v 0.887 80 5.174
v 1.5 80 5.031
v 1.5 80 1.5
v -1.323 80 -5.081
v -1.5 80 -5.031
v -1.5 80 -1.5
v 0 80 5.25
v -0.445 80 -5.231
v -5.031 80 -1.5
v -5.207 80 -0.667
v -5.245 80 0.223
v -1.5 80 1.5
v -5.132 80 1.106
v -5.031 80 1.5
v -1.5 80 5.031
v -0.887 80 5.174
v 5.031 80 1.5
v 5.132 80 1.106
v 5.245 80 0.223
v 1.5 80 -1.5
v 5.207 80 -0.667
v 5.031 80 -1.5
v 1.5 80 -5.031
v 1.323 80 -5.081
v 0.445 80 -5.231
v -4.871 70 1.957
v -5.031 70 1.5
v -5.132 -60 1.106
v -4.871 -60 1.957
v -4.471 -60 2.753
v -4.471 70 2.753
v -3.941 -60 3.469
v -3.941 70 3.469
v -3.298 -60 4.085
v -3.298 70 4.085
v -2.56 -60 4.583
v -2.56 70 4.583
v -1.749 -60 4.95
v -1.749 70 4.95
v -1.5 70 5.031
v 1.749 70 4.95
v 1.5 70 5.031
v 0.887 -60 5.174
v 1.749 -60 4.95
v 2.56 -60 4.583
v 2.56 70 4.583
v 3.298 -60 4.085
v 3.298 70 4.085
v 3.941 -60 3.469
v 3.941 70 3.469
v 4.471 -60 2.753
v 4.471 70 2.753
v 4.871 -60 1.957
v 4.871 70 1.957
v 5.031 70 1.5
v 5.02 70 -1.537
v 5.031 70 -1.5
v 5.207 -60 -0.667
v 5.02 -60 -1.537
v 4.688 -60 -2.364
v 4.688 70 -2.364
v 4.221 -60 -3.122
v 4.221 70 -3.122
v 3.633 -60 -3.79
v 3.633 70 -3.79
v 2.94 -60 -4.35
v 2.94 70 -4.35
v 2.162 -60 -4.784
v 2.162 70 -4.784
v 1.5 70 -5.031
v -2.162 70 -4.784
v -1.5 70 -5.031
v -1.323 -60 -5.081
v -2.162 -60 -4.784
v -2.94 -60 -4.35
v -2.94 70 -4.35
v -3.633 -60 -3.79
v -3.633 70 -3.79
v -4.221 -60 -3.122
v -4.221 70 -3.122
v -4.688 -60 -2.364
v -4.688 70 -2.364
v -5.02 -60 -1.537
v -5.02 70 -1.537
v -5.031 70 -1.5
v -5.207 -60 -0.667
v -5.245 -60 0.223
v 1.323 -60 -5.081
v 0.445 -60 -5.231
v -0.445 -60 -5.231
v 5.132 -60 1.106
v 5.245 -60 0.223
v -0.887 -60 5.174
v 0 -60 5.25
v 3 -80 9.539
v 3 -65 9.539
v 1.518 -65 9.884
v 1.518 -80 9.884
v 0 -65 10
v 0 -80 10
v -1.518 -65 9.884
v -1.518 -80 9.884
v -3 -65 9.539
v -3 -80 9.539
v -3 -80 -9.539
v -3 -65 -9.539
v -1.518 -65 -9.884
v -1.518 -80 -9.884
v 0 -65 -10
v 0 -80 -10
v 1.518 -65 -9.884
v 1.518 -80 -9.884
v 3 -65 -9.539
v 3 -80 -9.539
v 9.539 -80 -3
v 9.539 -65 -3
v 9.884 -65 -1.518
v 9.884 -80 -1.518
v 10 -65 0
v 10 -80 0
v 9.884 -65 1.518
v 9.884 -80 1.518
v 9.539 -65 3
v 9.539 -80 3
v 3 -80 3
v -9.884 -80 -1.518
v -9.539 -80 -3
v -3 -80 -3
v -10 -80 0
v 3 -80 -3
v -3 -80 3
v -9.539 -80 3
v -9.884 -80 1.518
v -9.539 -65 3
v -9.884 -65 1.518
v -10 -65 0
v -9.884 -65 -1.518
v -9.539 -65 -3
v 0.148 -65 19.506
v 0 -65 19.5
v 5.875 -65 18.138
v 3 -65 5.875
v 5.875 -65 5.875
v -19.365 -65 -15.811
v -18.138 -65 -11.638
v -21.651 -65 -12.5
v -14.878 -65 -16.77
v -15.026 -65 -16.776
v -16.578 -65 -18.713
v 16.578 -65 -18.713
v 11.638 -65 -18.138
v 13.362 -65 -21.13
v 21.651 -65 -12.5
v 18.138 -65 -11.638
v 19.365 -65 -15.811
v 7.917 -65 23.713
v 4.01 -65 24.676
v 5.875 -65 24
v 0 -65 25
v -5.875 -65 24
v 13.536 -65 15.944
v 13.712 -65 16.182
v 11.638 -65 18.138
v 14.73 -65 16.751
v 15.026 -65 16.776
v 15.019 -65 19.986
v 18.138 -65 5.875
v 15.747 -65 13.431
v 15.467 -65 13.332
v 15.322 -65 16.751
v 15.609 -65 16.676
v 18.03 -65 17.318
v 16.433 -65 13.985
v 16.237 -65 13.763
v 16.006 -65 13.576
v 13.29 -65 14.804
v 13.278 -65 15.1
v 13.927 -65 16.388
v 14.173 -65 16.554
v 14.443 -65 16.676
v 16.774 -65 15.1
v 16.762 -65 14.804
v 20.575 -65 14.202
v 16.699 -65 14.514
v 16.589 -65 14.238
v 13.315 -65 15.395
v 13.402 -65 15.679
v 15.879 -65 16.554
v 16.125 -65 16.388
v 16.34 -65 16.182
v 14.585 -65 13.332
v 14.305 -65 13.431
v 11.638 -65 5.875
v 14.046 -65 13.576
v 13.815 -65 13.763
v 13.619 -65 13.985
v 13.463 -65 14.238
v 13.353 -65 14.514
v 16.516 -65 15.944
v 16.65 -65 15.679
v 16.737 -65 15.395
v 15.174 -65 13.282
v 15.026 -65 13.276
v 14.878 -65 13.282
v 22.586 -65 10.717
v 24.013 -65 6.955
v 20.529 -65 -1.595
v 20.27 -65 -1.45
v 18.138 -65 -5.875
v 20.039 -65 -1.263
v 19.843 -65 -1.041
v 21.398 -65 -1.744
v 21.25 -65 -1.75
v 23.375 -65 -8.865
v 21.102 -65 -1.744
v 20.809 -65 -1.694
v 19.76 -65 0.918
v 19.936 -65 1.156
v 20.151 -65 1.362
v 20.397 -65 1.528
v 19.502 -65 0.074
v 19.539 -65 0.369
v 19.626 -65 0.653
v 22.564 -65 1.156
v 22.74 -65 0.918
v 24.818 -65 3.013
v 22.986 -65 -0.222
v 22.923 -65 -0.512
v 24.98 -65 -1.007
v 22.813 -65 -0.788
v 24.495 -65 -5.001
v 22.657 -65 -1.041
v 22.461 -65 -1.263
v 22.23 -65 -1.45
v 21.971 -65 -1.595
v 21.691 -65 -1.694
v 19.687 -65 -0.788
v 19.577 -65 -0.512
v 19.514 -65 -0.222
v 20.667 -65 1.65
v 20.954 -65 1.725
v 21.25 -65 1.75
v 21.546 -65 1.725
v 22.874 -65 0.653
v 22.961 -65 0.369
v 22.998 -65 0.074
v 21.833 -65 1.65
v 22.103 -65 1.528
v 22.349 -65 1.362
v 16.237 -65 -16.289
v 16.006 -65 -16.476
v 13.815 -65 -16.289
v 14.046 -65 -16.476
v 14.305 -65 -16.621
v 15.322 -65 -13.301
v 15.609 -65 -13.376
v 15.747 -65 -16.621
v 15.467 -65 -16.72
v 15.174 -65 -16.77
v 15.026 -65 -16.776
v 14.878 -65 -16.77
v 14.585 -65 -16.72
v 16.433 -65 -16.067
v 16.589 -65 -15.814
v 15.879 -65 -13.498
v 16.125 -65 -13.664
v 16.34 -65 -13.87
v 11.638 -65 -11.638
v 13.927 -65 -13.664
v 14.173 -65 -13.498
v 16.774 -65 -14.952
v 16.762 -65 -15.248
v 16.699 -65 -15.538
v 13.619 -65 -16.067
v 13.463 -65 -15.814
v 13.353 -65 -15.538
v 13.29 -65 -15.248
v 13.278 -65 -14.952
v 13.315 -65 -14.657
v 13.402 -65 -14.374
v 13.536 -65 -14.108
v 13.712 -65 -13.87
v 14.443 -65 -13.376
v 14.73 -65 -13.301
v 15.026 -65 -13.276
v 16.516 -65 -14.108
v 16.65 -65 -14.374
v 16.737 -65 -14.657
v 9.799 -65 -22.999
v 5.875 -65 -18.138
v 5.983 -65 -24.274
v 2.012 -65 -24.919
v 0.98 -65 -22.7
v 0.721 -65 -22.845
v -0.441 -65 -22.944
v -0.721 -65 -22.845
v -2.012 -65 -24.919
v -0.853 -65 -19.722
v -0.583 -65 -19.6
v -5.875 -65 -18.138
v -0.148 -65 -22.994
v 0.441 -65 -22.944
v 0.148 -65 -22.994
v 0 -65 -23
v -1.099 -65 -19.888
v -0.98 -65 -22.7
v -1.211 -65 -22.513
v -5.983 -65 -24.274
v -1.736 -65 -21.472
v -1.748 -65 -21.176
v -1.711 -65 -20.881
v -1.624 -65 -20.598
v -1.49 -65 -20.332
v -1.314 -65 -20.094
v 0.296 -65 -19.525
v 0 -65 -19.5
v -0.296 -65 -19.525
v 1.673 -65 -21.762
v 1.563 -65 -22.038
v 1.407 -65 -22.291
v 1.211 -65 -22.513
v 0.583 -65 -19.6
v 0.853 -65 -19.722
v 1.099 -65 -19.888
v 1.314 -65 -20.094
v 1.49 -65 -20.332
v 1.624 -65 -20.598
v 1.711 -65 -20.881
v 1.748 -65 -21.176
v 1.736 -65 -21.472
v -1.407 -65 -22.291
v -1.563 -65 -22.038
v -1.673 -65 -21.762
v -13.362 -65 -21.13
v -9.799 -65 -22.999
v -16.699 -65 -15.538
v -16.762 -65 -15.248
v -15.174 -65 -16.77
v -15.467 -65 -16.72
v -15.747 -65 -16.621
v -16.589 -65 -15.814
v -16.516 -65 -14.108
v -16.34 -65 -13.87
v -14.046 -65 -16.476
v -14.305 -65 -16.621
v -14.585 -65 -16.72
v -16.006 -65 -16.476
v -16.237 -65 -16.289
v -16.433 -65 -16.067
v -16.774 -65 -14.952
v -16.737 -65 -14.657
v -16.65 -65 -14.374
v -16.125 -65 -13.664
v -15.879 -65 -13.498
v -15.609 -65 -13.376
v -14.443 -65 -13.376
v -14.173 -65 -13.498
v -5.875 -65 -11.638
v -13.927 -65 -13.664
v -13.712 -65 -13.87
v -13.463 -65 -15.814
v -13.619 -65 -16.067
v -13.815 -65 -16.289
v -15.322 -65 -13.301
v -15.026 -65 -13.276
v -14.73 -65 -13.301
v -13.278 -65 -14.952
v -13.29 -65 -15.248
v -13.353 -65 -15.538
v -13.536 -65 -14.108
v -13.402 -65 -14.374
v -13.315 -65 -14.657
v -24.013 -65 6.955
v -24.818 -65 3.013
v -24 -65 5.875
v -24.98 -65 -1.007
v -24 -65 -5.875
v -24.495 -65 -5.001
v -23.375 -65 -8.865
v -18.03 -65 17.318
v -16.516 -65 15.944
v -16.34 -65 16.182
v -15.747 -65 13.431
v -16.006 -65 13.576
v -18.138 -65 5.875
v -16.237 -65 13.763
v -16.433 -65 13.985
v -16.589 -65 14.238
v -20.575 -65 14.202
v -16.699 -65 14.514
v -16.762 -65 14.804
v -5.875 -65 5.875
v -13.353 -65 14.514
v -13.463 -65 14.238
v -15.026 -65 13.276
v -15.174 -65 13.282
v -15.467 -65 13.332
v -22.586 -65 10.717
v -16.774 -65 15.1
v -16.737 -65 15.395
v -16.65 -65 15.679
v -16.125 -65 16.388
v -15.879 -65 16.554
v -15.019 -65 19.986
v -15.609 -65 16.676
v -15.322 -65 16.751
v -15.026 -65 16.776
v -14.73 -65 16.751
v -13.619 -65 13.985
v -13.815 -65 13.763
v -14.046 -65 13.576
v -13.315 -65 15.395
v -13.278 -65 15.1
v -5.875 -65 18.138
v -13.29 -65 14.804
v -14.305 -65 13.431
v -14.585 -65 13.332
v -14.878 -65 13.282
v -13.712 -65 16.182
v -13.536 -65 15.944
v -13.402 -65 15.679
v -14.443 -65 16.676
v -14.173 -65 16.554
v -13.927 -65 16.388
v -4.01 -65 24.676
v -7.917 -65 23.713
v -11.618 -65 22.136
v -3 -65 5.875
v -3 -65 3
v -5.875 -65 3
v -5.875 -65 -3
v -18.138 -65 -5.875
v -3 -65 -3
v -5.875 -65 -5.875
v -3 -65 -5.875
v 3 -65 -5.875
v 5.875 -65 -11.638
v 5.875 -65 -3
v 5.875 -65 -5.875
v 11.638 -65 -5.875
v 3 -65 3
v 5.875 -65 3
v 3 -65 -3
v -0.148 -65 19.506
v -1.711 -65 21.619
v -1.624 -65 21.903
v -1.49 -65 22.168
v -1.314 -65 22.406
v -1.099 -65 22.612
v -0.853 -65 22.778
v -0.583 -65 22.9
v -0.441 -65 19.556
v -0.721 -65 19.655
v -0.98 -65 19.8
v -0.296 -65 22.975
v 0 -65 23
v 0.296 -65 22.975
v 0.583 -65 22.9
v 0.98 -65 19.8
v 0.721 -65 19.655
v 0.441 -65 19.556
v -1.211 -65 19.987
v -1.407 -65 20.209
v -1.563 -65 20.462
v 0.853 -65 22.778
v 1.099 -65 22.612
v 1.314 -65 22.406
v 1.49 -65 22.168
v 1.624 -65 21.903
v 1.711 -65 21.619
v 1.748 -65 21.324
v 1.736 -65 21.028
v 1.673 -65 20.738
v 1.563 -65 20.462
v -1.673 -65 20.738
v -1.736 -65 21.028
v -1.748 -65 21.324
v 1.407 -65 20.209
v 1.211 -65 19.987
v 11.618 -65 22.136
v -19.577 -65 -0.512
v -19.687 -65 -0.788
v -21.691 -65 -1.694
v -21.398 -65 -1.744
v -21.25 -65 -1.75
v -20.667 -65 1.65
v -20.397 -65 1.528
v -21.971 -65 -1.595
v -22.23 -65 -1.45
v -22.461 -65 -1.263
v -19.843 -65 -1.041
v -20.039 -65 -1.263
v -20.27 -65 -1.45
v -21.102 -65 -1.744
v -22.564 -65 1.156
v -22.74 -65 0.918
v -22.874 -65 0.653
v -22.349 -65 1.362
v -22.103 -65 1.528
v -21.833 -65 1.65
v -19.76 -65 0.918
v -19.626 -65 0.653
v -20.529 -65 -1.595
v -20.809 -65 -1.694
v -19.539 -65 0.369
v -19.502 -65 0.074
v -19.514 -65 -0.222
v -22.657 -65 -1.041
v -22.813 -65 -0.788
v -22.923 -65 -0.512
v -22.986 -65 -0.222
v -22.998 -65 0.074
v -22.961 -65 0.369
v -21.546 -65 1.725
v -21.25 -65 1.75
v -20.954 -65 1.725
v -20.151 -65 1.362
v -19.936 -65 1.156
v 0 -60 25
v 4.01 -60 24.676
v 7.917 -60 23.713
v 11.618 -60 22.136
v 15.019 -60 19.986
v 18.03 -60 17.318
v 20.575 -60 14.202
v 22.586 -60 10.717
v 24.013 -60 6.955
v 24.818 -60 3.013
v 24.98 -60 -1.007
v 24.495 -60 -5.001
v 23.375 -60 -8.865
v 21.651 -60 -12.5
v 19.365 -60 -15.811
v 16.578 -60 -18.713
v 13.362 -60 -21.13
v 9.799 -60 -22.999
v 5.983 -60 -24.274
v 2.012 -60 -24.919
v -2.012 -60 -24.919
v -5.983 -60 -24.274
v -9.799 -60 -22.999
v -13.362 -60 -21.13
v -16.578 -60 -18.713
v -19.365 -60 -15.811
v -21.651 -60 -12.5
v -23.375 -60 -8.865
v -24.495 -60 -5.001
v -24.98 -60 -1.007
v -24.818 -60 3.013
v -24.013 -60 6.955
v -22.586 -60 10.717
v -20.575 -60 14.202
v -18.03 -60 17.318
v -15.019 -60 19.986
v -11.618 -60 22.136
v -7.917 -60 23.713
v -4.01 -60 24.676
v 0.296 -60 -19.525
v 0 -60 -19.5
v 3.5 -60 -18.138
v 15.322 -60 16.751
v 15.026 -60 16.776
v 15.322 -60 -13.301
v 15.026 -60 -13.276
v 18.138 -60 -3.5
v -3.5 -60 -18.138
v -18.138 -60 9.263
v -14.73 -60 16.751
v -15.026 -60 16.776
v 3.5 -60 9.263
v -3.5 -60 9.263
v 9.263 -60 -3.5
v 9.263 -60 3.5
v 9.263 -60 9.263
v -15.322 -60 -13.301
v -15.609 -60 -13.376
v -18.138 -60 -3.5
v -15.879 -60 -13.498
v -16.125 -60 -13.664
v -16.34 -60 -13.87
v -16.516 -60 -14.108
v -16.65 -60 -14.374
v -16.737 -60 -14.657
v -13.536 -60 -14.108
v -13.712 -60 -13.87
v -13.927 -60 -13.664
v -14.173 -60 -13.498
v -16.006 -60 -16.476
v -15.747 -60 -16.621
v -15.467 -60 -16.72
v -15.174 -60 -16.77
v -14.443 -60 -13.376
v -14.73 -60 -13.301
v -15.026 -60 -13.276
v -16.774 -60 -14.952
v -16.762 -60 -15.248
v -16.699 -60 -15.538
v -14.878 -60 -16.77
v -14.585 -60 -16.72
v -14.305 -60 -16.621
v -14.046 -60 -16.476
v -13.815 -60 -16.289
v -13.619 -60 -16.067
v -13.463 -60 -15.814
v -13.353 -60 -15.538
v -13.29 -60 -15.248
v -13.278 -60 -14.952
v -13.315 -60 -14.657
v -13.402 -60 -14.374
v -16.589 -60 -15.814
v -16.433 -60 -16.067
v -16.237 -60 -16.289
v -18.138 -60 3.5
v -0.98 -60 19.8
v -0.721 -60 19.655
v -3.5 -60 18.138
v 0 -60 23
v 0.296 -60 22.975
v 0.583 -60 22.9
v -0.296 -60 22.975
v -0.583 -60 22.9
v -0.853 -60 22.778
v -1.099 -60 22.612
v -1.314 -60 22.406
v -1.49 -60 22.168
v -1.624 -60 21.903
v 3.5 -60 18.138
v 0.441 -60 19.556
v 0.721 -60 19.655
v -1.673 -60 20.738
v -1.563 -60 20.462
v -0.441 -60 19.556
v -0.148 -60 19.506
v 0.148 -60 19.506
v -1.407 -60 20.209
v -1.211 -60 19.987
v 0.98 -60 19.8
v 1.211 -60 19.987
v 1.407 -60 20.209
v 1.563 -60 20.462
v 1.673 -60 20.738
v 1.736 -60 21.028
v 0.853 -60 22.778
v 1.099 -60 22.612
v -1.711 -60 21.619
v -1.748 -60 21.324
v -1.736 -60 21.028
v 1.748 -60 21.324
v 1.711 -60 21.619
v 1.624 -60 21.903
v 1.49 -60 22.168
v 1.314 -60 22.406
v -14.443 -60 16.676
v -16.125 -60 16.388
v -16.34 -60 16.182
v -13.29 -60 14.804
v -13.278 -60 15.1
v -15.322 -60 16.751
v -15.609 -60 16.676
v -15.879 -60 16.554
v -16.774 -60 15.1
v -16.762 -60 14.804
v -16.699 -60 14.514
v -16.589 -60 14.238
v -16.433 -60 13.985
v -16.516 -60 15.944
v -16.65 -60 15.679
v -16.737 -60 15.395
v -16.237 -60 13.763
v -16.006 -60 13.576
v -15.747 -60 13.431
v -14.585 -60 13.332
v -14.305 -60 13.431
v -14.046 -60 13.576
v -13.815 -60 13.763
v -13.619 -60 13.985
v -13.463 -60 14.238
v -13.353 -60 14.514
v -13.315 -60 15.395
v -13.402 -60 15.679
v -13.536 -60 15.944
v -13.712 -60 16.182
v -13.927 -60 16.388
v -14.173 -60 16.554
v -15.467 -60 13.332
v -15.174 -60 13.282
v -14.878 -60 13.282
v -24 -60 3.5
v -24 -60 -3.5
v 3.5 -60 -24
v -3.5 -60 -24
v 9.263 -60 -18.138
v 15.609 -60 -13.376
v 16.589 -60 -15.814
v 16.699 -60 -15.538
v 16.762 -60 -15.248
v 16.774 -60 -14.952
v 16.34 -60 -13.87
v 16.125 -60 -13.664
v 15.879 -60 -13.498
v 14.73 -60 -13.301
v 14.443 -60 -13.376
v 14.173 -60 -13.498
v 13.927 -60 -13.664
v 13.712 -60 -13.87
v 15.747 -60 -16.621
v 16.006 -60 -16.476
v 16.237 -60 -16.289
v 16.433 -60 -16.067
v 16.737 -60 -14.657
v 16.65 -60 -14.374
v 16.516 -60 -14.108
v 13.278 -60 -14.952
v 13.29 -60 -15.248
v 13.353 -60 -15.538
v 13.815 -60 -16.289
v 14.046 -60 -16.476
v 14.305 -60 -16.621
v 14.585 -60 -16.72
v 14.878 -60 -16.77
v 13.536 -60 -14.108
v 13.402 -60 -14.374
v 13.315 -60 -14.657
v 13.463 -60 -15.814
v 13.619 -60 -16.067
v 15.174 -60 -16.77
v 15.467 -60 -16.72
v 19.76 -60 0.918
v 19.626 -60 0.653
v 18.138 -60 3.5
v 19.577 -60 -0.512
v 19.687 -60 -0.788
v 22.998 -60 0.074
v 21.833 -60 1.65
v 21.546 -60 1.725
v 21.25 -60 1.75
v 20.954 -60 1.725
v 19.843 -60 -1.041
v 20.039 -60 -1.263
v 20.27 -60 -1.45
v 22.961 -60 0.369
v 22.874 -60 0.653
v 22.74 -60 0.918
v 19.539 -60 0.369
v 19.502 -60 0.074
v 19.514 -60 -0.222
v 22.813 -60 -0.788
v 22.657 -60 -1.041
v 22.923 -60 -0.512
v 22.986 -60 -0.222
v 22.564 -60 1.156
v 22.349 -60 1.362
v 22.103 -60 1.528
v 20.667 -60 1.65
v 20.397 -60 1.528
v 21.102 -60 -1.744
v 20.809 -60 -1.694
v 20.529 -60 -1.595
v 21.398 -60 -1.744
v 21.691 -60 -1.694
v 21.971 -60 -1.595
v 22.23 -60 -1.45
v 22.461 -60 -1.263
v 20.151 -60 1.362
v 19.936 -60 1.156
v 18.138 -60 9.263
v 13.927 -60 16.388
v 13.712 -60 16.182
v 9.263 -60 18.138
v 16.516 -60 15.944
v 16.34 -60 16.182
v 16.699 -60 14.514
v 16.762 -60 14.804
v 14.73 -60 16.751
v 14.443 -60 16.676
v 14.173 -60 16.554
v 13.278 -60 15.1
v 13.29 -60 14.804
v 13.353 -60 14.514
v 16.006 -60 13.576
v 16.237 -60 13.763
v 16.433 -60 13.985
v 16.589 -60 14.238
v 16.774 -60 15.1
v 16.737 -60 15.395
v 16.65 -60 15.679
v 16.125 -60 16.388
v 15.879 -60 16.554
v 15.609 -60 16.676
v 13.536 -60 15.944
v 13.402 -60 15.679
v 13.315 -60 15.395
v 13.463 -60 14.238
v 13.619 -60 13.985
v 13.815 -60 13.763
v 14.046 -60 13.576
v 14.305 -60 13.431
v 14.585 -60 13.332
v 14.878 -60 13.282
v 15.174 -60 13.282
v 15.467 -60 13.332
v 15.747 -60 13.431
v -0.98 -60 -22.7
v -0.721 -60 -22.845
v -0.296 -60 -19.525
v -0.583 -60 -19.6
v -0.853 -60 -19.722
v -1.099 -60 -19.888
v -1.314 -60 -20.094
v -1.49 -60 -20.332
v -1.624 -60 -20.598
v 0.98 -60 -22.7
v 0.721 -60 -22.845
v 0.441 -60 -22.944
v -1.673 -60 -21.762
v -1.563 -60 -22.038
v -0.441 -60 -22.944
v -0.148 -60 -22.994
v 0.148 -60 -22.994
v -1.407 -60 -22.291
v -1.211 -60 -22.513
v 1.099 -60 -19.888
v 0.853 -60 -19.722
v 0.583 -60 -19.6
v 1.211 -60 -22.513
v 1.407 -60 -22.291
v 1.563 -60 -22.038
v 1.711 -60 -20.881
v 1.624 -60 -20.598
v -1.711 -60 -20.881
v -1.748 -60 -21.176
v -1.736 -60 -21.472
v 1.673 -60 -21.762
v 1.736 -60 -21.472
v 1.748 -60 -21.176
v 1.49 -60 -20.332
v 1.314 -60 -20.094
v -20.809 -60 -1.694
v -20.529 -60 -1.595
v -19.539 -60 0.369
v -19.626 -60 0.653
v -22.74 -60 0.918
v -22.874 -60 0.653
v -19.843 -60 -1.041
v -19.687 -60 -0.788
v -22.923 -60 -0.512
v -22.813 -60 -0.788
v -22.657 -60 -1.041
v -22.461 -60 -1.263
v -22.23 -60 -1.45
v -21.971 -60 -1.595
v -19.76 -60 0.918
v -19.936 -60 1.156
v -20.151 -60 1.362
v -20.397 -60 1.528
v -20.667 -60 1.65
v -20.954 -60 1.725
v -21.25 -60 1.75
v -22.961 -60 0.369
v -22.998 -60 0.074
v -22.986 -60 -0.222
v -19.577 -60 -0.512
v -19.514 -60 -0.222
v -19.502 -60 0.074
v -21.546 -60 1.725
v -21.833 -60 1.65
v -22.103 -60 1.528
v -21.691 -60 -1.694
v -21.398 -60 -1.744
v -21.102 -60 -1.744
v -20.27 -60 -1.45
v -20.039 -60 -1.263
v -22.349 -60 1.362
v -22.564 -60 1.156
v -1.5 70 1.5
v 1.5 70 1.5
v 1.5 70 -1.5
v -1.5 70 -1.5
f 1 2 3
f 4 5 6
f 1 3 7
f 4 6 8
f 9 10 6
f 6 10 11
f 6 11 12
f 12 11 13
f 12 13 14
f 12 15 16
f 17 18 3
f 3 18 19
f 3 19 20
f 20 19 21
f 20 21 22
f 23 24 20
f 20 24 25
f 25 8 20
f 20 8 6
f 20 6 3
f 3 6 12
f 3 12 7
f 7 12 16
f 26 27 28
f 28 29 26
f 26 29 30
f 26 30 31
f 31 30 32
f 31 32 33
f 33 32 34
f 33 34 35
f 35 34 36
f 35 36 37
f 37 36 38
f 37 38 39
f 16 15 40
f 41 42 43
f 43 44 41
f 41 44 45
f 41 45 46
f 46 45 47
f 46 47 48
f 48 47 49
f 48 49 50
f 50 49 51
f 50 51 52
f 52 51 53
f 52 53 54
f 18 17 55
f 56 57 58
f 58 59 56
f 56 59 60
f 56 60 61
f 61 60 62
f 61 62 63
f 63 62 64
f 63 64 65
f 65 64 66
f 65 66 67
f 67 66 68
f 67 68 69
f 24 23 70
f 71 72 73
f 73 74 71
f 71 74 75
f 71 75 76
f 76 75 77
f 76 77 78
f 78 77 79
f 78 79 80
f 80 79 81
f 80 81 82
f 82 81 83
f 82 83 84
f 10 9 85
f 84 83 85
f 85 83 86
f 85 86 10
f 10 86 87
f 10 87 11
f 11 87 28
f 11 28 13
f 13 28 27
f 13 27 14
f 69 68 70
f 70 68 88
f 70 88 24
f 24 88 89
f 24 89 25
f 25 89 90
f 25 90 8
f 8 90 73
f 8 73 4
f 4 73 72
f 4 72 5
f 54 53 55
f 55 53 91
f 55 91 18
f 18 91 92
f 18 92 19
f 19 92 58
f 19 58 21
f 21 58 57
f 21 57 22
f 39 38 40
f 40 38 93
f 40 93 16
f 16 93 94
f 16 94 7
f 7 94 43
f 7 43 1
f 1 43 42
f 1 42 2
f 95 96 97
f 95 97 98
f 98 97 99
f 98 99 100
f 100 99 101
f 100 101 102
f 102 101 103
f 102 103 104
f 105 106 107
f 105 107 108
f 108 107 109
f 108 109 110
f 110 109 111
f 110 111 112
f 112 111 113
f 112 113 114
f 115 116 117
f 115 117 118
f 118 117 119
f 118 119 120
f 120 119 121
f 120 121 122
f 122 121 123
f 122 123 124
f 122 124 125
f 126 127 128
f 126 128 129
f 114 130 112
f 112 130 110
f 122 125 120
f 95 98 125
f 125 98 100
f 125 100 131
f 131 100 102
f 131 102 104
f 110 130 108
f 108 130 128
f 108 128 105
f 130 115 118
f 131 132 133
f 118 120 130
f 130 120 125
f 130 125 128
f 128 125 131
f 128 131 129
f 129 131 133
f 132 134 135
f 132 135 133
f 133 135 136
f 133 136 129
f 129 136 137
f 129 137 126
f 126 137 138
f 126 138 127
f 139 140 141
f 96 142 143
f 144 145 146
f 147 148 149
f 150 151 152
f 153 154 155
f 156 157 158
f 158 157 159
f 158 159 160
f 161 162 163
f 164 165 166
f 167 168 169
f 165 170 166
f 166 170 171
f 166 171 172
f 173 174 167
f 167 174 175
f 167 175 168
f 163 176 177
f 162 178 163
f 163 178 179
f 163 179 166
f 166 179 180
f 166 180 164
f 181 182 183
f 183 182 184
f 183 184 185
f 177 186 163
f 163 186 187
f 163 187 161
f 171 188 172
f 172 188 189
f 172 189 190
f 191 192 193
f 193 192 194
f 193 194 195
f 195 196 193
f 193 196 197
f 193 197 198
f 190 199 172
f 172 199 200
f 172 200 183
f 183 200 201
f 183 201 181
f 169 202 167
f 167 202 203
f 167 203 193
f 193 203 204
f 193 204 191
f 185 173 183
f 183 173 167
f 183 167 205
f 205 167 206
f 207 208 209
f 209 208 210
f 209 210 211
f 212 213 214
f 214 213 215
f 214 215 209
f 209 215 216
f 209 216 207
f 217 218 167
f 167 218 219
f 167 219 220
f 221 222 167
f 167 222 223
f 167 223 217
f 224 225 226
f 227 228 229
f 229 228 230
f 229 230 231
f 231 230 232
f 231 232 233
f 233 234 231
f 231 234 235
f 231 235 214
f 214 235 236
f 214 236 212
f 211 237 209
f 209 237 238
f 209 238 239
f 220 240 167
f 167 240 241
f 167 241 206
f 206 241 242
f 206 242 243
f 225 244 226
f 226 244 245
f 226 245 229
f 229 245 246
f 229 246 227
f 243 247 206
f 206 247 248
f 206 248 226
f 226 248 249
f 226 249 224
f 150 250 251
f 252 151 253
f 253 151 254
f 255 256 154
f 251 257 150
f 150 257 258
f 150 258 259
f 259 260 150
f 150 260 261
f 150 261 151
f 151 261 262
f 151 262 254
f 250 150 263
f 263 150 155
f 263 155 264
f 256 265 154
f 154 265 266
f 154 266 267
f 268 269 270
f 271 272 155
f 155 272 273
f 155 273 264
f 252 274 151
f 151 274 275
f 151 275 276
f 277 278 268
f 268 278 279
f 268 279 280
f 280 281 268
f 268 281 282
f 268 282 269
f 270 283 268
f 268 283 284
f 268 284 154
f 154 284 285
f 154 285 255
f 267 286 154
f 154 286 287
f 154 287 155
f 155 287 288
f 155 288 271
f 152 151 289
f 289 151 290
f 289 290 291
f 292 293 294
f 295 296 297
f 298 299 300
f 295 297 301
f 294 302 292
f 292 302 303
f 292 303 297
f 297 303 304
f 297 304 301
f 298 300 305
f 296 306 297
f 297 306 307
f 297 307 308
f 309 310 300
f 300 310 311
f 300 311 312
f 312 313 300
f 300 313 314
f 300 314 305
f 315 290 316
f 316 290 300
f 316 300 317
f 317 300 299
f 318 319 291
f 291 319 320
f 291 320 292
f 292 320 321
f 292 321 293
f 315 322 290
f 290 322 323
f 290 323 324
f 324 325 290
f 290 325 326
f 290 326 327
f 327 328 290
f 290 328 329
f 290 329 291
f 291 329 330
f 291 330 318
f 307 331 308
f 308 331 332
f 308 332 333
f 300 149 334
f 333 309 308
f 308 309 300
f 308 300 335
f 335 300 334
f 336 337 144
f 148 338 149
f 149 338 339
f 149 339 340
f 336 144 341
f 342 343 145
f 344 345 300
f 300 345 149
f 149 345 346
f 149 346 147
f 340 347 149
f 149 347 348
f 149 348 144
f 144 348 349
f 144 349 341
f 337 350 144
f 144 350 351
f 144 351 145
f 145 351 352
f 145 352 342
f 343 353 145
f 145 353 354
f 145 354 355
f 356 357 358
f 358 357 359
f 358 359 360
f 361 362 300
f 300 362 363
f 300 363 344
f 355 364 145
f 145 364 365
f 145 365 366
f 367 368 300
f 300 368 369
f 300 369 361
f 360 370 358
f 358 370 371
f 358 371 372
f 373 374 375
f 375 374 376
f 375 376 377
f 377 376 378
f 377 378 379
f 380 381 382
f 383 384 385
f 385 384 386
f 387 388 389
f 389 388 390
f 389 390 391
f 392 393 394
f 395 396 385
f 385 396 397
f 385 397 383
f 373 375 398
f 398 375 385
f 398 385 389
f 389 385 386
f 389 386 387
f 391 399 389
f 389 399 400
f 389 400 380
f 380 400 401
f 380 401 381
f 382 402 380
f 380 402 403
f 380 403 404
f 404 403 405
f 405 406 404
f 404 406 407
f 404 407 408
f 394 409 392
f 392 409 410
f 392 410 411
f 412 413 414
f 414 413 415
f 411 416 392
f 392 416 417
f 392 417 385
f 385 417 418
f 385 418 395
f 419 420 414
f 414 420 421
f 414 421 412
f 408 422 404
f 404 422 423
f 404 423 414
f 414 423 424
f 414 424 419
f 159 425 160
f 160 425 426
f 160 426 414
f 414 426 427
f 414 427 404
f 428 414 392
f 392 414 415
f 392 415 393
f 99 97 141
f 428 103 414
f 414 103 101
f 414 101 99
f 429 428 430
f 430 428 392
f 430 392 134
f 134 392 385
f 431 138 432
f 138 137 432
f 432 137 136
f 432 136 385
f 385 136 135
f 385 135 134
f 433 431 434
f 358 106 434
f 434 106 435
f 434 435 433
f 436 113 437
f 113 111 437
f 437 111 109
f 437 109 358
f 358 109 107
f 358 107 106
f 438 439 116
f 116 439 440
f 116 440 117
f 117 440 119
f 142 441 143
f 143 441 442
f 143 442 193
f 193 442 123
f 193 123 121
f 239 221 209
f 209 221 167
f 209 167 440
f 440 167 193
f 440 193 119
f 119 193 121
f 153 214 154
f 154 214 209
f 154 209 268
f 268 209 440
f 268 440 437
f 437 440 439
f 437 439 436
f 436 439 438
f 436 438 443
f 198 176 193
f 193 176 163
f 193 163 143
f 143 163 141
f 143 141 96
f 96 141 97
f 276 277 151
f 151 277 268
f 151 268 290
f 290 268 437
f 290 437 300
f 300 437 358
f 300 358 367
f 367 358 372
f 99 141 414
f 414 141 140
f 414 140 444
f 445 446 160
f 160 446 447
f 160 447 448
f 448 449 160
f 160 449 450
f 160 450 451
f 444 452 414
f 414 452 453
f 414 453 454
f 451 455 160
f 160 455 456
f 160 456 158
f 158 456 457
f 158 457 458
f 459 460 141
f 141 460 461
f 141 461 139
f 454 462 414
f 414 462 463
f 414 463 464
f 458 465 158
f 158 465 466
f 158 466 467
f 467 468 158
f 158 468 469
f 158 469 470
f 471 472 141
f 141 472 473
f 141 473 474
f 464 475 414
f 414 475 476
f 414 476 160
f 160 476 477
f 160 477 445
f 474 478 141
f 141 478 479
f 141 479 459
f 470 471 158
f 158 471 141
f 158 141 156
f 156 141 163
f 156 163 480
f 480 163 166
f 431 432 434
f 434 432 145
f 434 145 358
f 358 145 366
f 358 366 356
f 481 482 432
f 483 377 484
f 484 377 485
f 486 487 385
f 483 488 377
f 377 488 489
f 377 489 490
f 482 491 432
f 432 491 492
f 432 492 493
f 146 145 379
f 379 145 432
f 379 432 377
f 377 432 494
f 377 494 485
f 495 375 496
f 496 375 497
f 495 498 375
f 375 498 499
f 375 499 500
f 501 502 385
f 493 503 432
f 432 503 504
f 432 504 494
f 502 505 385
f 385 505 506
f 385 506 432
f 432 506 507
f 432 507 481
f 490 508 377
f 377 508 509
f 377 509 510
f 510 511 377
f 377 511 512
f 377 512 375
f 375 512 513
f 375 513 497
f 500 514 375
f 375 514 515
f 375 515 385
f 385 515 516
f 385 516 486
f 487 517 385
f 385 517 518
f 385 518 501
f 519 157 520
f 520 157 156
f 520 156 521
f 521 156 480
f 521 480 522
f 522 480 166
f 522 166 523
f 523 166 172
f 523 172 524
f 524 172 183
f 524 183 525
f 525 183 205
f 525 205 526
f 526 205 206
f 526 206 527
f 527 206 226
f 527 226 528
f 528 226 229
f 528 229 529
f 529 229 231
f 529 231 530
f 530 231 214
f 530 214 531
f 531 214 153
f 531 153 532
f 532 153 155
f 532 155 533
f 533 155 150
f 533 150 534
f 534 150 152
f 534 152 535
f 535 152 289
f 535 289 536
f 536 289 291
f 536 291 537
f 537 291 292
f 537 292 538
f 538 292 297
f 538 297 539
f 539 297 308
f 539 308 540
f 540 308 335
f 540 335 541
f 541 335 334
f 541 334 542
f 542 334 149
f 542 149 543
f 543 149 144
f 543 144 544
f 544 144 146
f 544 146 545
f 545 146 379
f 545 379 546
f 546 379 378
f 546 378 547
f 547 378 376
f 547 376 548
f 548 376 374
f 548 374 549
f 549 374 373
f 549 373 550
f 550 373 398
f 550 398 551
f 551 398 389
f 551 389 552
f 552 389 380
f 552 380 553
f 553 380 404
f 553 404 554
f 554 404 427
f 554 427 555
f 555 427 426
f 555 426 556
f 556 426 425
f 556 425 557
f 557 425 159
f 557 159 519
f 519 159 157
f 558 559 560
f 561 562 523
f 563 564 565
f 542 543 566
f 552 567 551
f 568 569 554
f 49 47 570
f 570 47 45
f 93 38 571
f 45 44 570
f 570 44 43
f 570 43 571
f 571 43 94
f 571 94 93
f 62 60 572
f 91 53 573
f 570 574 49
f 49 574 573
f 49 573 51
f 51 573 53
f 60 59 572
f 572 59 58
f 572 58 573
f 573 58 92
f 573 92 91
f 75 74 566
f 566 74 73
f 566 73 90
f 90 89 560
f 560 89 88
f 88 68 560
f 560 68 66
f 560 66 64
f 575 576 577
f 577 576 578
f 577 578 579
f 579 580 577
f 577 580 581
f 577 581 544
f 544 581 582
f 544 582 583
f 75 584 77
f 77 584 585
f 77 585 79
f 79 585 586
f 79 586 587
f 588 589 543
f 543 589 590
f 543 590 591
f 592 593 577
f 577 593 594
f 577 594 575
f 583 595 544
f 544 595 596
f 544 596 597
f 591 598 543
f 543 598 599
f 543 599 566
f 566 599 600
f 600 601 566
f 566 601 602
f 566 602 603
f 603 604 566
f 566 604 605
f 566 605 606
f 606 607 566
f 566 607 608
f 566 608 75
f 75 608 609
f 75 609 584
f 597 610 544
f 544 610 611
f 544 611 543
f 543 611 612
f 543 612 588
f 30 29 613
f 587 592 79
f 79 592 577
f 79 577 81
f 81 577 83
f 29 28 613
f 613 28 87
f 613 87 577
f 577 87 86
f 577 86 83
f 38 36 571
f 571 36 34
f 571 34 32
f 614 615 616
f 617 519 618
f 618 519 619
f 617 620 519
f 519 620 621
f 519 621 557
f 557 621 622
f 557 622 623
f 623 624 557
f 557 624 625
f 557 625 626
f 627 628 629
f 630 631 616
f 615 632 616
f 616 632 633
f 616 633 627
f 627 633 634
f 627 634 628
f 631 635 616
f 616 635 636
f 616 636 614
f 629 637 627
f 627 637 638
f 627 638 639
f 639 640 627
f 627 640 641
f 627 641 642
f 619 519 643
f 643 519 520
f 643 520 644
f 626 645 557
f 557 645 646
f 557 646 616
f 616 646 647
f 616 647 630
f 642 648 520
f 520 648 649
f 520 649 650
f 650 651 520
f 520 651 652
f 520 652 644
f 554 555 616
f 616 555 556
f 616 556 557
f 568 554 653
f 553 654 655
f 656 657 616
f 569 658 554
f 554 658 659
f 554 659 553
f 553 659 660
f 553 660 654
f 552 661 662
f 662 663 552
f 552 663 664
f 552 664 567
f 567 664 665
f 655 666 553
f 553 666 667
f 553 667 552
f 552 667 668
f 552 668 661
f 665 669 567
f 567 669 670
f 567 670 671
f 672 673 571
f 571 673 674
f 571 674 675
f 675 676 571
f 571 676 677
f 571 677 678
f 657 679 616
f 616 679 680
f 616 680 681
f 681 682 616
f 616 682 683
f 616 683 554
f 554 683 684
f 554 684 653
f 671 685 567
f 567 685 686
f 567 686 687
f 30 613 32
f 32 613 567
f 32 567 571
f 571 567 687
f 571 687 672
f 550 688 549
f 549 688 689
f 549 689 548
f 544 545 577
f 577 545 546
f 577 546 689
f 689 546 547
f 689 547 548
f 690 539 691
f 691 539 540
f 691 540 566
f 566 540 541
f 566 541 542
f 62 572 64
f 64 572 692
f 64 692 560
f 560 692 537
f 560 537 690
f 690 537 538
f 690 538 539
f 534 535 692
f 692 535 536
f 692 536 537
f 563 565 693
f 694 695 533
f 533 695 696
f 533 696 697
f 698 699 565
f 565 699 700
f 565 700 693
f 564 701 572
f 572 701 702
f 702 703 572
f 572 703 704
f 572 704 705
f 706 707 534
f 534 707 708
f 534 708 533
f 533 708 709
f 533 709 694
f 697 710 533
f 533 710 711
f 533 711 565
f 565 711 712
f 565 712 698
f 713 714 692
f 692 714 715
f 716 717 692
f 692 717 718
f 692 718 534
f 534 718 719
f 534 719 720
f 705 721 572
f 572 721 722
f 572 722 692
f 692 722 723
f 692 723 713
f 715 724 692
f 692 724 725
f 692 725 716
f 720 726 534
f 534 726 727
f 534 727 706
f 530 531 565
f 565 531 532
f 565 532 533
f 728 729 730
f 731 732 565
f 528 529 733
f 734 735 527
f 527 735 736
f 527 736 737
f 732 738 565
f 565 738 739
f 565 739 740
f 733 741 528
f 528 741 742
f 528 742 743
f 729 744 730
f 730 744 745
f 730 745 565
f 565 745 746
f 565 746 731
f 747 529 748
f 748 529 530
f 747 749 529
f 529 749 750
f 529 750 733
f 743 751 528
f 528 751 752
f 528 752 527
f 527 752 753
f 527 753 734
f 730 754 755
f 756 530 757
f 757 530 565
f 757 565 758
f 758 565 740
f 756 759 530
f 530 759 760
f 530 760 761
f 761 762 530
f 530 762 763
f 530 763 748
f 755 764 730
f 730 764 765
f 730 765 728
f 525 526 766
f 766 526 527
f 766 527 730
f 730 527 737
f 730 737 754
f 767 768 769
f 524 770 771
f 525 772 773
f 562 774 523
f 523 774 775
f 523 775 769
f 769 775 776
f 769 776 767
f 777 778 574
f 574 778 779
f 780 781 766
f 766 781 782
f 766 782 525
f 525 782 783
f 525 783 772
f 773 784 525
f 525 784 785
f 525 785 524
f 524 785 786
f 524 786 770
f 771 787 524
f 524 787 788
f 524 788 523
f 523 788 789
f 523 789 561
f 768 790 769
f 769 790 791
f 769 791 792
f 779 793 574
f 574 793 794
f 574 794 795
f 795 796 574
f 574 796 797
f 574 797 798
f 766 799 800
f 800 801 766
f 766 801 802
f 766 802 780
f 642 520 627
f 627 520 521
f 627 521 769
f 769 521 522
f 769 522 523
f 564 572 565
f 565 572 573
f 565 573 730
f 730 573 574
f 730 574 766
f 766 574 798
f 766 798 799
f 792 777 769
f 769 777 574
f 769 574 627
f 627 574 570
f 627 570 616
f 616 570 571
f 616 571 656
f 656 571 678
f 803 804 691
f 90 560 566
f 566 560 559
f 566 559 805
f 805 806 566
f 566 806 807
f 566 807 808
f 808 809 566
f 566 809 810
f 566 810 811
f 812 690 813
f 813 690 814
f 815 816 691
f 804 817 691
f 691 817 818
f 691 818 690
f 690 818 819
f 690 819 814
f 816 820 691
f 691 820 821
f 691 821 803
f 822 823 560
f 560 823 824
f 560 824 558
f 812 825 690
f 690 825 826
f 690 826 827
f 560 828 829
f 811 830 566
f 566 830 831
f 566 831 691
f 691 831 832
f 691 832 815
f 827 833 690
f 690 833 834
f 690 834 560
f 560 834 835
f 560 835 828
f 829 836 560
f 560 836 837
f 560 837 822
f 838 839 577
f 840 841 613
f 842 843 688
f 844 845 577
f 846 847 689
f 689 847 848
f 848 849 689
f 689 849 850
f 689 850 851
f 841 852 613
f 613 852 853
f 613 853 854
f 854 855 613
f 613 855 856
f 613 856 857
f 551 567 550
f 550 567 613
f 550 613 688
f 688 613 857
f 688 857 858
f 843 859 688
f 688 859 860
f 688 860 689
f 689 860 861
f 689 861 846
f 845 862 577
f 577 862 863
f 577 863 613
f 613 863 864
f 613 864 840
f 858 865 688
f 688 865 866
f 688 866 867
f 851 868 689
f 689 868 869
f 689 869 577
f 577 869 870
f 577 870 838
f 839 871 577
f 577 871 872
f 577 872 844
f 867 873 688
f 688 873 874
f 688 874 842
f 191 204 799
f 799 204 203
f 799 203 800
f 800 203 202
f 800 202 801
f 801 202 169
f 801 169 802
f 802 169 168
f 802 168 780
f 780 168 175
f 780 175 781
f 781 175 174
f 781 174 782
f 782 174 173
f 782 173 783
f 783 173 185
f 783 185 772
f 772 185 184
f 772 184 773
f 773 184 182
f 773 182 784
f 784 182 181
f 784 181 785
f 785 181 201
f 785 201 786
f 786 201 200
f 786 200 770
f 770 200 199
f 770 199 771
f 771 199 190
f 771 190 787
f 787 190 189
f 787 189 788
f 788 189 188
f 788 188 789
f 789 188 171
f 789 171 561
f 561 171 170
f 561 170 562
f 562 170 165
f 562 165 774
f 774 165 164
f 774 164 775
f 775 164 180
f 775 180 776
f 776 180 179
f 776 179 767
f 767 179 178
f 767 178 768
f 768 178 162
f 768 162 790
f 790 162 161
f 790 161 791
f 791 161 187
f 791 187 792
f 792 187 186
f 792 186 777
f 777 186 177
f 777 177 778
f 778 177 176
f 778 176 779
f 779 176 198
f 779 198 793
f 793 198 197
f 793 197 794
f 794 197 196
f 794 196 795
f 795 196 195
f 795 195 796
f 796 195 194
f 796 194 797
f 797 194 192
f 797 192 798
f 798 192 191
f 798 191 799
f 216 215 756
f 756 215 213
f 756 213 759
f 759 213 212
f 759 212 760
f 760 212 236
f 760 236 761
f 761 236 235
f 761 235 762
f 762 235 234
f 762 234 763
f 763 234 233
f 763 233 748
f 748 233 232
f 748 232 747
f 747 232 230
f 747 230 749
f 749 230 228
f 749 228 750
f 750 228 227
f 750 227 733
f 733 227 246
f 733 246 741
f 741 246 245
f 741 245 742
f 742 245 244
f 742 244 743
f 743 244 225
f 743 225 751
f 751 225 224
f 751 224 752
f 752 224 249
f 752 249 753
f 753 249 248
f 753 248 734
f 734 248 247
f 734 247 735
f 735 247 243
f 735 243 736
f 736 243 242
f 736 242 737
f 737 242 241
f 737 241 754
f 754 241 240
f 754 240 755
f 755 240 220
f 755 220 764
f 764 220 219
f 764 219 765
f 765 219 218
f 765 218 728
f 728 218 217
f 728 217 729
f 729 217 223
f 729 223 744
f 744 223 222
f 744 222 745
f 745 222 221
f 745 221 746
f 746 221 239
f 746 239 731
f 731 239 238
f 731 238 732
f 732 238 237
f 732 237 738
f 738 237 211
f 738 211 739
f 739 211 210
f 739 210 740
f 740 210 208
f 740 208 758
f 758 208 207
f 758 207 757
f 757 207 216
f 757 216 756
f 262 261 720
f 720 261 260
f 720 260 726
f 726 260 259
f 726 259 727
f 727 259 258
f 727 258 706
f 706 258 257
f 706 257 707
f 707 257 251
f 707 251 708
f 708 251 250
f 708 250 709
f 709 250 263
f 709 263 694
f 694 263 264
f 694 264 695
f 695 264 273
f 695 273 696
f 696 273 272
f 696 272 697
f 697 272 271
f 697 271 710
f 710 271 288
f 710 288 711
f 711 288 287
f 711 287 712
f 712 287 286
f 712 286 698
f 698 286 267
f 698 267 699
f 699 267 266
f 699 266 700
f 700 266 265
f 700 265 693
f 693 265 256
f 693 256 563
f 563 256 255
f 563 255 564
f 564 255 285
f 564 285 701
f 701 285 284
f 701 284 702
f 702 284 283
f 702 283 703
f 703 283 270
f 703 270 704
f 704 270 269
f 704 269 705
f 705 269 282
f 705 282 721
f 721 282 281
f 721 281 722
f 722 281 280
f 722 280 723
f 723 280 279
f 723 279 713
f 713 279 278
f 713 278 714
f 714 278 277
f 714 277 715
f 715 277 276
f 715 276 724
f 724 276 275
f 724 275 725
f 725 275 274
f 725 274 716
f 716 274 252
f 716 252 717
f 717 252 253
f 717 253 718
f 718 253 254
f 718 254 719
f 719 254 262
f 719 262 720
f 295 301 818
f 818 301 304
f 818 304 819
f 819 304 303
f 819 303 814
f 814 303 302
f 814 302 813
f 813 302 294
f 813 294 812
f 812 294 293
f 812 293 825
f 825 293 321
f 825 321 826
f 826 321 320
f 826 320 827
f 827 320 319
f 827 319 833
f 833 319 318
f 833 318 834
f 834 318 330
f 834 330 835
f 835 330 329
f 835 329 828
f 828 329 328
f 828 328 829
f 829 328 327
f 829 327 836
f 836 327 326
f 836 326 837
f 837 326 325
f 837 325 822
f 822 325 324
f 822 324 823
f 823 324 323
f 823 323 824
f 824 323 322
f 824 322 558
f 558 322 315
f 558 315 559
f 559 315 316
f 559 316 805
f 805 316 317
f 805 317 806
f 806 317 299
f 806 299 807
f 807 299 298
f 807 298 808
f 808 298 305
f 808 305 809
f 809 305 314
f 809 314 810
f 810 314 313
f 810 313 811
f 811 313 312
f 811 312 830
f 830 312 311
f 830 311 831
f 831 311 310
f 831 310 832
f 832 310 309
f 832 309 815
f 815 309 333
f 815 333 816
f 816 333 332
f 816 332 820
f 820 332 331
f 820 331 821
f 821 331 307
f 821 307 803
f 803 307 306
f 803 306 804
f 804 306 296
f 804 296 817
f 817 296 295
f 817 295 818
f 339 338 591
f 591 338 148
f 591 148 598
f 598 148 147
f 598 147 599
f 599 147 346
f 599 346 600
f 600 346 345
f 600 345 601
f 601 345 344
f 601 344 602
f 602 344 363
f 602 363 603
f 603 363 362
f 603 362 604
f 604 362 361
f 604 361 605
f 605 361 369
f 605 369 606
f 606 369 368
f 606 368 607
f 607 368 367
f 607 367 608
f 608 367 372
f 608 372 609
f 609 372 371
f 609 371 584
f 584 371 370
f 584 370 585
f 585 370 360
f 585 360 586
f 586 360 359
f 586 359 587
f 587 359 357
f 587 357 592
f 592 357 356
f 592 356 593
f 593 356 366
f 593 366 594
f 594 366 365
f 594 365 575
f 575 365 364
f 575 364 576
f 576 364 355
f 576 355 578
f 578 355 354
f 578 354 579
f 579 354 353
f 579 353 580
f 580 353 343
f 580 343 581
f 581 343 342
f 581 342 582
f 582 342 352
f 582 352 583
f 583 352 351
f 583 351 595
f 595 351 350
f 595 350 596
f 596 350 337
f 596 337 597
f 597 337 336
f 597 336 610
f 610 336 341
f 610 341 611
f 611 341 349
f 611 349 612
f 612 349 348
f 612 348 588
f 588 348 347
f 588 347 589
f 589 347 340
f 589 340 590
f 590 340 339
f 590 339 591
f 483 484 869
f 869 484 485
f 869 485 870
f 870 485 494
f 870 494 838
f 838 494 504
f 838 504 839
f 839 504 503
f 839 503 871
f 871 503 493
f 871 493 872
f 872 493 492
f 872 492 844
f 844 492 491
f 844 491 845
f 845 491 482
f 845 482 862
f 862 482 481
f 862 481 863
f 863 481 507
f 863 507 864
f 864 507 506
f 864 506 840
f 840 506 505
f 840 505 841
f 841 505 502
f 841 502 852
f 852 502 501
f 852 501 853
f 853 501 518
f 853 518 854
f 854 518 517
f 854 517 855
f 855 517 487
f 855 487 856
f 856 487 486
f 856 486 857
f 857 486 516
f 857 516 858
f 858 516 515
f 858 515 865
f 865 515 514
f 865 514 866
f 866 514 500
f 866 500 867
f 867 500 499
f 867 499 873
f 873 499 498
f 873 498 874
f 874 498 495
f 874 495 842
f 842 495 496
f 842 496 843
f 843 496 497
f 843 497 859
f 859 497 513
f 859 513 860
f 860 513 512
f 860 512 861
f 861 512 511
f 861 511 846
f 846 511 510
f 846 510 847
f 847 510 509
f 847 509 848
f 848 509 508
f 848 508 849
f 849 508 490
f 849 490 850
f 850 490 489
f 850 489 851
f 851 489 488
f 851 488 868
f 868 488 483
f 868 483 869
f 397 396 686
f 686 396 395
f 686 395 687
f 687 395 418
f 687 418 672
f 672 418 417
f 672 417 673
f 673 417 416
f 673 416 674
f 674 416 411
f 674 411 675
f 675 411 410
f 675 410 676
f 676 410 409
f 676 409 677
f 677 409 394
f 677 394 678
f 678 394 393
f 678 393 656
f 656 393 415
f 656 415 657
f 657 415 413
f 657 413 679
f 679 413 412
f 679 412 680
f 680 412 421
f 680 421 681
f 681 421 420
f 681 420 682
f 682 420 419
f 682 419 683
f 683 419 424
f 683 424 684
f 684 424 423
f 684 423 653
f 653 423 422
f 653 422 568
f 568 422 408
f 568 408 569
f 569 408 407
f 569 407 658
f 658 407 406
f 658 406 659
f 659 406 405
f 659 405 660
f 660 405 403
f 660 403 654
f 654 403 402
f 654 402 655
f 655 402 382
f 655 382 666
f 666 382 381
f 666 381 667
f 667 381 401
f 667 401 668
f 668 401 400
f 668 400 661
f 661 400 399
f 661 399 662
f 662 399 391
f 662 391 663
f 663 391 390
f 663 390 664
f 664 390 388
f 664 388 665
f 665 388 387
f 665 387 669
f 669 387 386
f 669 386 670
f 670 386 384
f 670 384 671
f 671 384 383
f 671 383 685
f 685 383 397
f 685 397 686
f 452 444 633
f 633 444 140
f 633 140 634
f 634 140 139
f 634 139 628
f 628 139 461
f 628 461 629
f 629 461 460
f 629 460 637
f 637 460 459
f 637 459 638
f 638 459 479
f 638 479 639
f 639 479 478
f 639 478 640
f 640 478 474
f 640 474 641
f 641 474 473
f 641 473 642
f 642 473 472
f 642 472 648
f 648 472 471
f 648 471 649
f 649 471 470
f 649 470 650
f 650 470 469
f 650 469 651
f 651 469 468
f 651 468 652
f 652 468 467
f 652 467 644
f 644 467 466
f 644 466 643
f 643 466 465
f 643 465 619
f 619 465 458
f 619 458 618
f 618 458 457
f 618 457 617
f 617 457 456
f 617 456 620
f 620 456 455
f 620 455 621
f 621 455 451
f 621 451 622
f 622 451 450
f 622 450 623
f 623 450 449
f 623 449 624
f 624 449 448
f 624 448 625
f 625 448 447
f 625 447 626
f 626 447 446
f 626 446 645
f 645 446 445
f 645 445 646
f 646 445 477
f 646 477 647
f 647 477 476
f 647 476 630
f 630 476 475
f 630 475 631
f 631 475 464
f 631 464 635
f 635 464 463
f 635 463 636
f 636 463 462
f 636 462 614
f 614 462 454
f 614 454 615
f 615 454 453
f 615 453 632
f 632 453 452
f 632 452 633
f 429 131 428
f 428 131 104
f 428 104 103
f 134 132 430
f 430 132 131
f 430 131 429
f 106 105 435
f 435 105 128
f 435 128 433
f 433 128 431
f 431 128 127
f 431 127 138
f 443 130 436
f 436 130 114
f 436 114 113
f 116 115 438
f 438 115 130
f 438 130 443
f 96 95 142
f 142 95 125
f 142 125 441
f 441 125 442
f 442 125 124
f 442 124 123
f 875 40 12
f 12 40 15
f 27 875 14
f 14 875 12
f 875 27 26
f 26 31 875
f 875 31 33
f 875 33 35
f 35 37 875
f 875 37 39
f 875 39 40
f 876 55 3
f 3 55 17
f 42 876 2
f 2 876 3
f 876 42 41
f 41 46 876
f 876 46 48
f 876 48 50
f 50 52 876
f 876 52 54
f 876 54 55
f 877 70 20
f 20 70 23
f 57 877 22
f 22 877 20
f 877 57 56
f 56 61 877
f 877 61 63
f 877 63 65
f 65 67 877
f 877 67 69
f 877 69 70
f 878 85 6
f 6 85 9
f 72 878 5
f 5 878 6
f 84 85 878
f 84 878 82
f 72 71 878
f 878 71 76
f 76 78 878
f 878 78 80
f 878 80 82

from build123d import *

# Parameters (mm, degrees)
SKETCH2_R          = 1.75
CUT_EXTRUDE1_DEPTH = 10
CUT_EXTRUDE2_DEPTH = 15
CUT_EXTRUDE3_START = -10
CUT_EXTRUDE3_DEPTH = 10


with BuildPart() as part:
    # Sketch1 → Revolve1 (revolve)
    with BuildSketch(Plane(origin=(0, 0, 0), x_dir=(0, 0, -1), z_dir=(1, 0, 0))):
        Polygon((-5.25, 80), (-5.25, -60), (-25, -60), (-25, -65), (-10, -65), (-10, -80), (0, -80), (0, 80), align=None)
    revolve(axis=Axis((0, 49.914529915, 0), (0, -1, 0)))

    # Sketch2 → Cut-Extrude1 (cut)
    with BuildSketch(Plane(origin=(0, -60, 0), x_dir=(1, 0, 0), z_dir=(0, 1, 0))):
        with Locations(Location((0, -21.25, 0), (0, 0, 270))):
            Circle(SKETCH2_R)
        with Locations(Location((-15.0260191, -15.0260191, 0), (0, 0, 270))):
            Circle(SKETCH2_R)
        with Locations(Location((-21.25, 0, 0), (0, 0, 270))):
            Circle(SKETCH2_R)
        with Locations(Location((-15.0260191, 15.0260191, 0), (0, 0, 270))):
            Circle(SKETCH2_R)
        with Locations(Location((0, 21.25, 0), (0, 0, 270))):
            Circle(SKETCH2_R)
        with Locations(Location((15.0260191, 15.0260191, 0), (0, 0, 270))):
            Circle(SKETCH2_R)
        with Locations(Location((21.25, 0, 0), (0, 0, 270))):
            Circle(SKETCH2_R)
        with Locations(Location((15.0260191, -15.0260191, 0), (0, 0, 270))):
            Circle(SKETCH2_R)
    extrude(amount=-CUT_EXTRUDE1_DEPTH, mode=Mode.SUBTRACT)

    # Sketch3 → Cut-Extrude2 (cut)
    with BuildSketch(Plane.XZ.offset(80)):
        with BuildLine():
            Line((-3, 9.539392014), (-3, 3))
            Line((-3, 3), (-9.539392014, 3))
            ThreePointArc((-9.539392014, 3), (-7.071067812, 7.071067812), (-3, 9.539392014))
        make_face()
        with BuildLine():
            Line((-3, -3), (-9.539392014, -3))
            ThreePointArc((-9.539392014, -3), (-7.071067812, -7.071067812), (-3, -9.539392014))
            Line((-3, -9.539392014), (-3, -3))
        make_face()
        with BuildLine():
            Line((3, -3), (9.539392014, -3))
            ThreePointArc((9.539392014, -3), (7.071067812, -7.071067812), (3, -9.539392014))
            Line((3, -9.539392014), (3, -3))
        make_face()
        with BuildLine():
            Line((3, 3), (9.539392014, 3))
            ThreePointArc((9.539392014, 3), (7.071067812, 7.071067812), (3, 9.539392014))
            Line((3, 9.539392014), (3, 3))
        make_face()
    extrude(amount=-CUT_EXTRUDE2_DEPTH, mode=Mode.SUBTRACT)

    # Sketch4 → Cut-Extrude3 (cut)
    with BuildSketch(Plane(origin=(0, 80, 0), x_dir=(1, 0, 0), z_dir=(0, 1, 0)).offset(CUT_EXTRUDE3_START)):
        with BuildLine():
            Line((-1.5, -1.5), (-5.031152949, -1.5))
            ThreePointArc((-5.031152949, -1.5), (-3.712310601, -3.712310601), (-1.5, -5.031152949))
            Line((-1.5, -5.031152949), (-1.5, -1.5))
        make_face()
        with BuildLine():
            Line((1.5, -1.5), (1.5, -5.031152949))
            ThreePointArc((1.5, -5.031152949), (3.712310601, -3.712310601), (5.031152949, -1.5))
            Line((5.031152949, -1.5), (1.5, -1.5))
        make_face()
        with BuildLine():
            ThreePointArc((5.031152949, 1.5), (3.712310601, 3.712310601), (1.5, 5.031152949))
            Line((1.5, 5.031152949), (1.5, 1.5))
            Line((1.5, 1.5), (5.031152949, 1.5))
        make_face()
        with BuildLine():
            ThreePointArc((-5.031152949, 1.5), (-3.712310601, 3.712310601), (-1.5, 5.031152949))
            Line((-1.5, 5.031152949), (-1.5, 1.5))
            Line((-1.5, 1.5), (-5.031152949, 1.5))
        make_face()
    extrude(amount=CUT_EXTRUDE3_DEPTH, mode=Mode.SUBTRACT)


solid = part.part
